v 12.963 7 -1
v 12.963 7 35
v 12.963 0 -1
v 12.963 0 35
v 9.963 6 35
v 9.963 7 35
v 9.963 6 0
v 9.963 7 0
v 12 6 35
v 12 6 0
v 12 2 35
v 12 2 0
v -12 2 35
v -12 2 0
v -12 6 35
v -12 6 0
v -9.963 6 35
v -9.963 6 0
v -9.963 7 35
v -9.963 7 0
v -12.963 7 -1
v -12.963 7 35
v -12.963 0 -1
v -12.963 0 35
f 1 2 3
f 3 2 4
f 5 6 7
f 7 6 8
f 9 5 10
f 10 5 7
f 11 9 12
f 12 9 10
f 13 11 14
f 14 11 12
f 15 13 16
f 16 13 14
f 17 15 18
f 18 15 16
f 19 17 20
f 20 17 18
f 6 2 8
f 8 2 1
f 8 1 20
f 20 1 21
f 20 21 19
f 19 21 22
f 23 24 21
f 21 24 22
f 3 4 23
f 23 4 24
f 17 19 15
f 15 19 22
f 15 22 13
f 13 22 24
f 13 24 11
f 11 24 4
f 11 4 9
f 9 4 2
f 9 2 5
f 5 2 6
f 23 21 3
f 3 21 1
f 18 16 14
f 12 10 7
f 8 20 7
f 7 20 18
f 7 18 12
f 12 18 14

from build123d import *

# Parameters (mm, degrees)
EXTRUDE_2_DEPTH = 35
SKETCH_3_W      = 25.925675676
SKETCH_3_H      = 7
EXTRUDE_3_DEPTH = 1


with BuildPart() as part:
    # 草图2 → 凸台-拉伸2 (new body)
    with BuildSketch(Plane.XY):
        Polygon((-10, 0), (10, 0), (12.962837838, 0), (12.962837838, 7), (9.962837838, 7), (9.962837838, 6), (12, 6), (12, 2), (10, 2), (-10, 2), (-12, 2), (-12, 6), (-9.962837838, 6), (-9.962837838, 7), (-12.962837838, 7), (-12.962837838, 0), align=None)
    extrude(amount=EXTRUDE_2_DEPTH)

    # 草图3 → 凸台-拉伸3 (add)
    with BuildSketch(Plane(origin=(0, 0, 0), x_dir=(-1, 0, 0), z_dir=(0, 0, -1))):
        with Locations((0, 3.5)):
            Rectangle(SKETCH_3_W, SKETCH_3_H)
    extrude(amount=EXTRUDE_3_DEPTH)


solid = part.part
